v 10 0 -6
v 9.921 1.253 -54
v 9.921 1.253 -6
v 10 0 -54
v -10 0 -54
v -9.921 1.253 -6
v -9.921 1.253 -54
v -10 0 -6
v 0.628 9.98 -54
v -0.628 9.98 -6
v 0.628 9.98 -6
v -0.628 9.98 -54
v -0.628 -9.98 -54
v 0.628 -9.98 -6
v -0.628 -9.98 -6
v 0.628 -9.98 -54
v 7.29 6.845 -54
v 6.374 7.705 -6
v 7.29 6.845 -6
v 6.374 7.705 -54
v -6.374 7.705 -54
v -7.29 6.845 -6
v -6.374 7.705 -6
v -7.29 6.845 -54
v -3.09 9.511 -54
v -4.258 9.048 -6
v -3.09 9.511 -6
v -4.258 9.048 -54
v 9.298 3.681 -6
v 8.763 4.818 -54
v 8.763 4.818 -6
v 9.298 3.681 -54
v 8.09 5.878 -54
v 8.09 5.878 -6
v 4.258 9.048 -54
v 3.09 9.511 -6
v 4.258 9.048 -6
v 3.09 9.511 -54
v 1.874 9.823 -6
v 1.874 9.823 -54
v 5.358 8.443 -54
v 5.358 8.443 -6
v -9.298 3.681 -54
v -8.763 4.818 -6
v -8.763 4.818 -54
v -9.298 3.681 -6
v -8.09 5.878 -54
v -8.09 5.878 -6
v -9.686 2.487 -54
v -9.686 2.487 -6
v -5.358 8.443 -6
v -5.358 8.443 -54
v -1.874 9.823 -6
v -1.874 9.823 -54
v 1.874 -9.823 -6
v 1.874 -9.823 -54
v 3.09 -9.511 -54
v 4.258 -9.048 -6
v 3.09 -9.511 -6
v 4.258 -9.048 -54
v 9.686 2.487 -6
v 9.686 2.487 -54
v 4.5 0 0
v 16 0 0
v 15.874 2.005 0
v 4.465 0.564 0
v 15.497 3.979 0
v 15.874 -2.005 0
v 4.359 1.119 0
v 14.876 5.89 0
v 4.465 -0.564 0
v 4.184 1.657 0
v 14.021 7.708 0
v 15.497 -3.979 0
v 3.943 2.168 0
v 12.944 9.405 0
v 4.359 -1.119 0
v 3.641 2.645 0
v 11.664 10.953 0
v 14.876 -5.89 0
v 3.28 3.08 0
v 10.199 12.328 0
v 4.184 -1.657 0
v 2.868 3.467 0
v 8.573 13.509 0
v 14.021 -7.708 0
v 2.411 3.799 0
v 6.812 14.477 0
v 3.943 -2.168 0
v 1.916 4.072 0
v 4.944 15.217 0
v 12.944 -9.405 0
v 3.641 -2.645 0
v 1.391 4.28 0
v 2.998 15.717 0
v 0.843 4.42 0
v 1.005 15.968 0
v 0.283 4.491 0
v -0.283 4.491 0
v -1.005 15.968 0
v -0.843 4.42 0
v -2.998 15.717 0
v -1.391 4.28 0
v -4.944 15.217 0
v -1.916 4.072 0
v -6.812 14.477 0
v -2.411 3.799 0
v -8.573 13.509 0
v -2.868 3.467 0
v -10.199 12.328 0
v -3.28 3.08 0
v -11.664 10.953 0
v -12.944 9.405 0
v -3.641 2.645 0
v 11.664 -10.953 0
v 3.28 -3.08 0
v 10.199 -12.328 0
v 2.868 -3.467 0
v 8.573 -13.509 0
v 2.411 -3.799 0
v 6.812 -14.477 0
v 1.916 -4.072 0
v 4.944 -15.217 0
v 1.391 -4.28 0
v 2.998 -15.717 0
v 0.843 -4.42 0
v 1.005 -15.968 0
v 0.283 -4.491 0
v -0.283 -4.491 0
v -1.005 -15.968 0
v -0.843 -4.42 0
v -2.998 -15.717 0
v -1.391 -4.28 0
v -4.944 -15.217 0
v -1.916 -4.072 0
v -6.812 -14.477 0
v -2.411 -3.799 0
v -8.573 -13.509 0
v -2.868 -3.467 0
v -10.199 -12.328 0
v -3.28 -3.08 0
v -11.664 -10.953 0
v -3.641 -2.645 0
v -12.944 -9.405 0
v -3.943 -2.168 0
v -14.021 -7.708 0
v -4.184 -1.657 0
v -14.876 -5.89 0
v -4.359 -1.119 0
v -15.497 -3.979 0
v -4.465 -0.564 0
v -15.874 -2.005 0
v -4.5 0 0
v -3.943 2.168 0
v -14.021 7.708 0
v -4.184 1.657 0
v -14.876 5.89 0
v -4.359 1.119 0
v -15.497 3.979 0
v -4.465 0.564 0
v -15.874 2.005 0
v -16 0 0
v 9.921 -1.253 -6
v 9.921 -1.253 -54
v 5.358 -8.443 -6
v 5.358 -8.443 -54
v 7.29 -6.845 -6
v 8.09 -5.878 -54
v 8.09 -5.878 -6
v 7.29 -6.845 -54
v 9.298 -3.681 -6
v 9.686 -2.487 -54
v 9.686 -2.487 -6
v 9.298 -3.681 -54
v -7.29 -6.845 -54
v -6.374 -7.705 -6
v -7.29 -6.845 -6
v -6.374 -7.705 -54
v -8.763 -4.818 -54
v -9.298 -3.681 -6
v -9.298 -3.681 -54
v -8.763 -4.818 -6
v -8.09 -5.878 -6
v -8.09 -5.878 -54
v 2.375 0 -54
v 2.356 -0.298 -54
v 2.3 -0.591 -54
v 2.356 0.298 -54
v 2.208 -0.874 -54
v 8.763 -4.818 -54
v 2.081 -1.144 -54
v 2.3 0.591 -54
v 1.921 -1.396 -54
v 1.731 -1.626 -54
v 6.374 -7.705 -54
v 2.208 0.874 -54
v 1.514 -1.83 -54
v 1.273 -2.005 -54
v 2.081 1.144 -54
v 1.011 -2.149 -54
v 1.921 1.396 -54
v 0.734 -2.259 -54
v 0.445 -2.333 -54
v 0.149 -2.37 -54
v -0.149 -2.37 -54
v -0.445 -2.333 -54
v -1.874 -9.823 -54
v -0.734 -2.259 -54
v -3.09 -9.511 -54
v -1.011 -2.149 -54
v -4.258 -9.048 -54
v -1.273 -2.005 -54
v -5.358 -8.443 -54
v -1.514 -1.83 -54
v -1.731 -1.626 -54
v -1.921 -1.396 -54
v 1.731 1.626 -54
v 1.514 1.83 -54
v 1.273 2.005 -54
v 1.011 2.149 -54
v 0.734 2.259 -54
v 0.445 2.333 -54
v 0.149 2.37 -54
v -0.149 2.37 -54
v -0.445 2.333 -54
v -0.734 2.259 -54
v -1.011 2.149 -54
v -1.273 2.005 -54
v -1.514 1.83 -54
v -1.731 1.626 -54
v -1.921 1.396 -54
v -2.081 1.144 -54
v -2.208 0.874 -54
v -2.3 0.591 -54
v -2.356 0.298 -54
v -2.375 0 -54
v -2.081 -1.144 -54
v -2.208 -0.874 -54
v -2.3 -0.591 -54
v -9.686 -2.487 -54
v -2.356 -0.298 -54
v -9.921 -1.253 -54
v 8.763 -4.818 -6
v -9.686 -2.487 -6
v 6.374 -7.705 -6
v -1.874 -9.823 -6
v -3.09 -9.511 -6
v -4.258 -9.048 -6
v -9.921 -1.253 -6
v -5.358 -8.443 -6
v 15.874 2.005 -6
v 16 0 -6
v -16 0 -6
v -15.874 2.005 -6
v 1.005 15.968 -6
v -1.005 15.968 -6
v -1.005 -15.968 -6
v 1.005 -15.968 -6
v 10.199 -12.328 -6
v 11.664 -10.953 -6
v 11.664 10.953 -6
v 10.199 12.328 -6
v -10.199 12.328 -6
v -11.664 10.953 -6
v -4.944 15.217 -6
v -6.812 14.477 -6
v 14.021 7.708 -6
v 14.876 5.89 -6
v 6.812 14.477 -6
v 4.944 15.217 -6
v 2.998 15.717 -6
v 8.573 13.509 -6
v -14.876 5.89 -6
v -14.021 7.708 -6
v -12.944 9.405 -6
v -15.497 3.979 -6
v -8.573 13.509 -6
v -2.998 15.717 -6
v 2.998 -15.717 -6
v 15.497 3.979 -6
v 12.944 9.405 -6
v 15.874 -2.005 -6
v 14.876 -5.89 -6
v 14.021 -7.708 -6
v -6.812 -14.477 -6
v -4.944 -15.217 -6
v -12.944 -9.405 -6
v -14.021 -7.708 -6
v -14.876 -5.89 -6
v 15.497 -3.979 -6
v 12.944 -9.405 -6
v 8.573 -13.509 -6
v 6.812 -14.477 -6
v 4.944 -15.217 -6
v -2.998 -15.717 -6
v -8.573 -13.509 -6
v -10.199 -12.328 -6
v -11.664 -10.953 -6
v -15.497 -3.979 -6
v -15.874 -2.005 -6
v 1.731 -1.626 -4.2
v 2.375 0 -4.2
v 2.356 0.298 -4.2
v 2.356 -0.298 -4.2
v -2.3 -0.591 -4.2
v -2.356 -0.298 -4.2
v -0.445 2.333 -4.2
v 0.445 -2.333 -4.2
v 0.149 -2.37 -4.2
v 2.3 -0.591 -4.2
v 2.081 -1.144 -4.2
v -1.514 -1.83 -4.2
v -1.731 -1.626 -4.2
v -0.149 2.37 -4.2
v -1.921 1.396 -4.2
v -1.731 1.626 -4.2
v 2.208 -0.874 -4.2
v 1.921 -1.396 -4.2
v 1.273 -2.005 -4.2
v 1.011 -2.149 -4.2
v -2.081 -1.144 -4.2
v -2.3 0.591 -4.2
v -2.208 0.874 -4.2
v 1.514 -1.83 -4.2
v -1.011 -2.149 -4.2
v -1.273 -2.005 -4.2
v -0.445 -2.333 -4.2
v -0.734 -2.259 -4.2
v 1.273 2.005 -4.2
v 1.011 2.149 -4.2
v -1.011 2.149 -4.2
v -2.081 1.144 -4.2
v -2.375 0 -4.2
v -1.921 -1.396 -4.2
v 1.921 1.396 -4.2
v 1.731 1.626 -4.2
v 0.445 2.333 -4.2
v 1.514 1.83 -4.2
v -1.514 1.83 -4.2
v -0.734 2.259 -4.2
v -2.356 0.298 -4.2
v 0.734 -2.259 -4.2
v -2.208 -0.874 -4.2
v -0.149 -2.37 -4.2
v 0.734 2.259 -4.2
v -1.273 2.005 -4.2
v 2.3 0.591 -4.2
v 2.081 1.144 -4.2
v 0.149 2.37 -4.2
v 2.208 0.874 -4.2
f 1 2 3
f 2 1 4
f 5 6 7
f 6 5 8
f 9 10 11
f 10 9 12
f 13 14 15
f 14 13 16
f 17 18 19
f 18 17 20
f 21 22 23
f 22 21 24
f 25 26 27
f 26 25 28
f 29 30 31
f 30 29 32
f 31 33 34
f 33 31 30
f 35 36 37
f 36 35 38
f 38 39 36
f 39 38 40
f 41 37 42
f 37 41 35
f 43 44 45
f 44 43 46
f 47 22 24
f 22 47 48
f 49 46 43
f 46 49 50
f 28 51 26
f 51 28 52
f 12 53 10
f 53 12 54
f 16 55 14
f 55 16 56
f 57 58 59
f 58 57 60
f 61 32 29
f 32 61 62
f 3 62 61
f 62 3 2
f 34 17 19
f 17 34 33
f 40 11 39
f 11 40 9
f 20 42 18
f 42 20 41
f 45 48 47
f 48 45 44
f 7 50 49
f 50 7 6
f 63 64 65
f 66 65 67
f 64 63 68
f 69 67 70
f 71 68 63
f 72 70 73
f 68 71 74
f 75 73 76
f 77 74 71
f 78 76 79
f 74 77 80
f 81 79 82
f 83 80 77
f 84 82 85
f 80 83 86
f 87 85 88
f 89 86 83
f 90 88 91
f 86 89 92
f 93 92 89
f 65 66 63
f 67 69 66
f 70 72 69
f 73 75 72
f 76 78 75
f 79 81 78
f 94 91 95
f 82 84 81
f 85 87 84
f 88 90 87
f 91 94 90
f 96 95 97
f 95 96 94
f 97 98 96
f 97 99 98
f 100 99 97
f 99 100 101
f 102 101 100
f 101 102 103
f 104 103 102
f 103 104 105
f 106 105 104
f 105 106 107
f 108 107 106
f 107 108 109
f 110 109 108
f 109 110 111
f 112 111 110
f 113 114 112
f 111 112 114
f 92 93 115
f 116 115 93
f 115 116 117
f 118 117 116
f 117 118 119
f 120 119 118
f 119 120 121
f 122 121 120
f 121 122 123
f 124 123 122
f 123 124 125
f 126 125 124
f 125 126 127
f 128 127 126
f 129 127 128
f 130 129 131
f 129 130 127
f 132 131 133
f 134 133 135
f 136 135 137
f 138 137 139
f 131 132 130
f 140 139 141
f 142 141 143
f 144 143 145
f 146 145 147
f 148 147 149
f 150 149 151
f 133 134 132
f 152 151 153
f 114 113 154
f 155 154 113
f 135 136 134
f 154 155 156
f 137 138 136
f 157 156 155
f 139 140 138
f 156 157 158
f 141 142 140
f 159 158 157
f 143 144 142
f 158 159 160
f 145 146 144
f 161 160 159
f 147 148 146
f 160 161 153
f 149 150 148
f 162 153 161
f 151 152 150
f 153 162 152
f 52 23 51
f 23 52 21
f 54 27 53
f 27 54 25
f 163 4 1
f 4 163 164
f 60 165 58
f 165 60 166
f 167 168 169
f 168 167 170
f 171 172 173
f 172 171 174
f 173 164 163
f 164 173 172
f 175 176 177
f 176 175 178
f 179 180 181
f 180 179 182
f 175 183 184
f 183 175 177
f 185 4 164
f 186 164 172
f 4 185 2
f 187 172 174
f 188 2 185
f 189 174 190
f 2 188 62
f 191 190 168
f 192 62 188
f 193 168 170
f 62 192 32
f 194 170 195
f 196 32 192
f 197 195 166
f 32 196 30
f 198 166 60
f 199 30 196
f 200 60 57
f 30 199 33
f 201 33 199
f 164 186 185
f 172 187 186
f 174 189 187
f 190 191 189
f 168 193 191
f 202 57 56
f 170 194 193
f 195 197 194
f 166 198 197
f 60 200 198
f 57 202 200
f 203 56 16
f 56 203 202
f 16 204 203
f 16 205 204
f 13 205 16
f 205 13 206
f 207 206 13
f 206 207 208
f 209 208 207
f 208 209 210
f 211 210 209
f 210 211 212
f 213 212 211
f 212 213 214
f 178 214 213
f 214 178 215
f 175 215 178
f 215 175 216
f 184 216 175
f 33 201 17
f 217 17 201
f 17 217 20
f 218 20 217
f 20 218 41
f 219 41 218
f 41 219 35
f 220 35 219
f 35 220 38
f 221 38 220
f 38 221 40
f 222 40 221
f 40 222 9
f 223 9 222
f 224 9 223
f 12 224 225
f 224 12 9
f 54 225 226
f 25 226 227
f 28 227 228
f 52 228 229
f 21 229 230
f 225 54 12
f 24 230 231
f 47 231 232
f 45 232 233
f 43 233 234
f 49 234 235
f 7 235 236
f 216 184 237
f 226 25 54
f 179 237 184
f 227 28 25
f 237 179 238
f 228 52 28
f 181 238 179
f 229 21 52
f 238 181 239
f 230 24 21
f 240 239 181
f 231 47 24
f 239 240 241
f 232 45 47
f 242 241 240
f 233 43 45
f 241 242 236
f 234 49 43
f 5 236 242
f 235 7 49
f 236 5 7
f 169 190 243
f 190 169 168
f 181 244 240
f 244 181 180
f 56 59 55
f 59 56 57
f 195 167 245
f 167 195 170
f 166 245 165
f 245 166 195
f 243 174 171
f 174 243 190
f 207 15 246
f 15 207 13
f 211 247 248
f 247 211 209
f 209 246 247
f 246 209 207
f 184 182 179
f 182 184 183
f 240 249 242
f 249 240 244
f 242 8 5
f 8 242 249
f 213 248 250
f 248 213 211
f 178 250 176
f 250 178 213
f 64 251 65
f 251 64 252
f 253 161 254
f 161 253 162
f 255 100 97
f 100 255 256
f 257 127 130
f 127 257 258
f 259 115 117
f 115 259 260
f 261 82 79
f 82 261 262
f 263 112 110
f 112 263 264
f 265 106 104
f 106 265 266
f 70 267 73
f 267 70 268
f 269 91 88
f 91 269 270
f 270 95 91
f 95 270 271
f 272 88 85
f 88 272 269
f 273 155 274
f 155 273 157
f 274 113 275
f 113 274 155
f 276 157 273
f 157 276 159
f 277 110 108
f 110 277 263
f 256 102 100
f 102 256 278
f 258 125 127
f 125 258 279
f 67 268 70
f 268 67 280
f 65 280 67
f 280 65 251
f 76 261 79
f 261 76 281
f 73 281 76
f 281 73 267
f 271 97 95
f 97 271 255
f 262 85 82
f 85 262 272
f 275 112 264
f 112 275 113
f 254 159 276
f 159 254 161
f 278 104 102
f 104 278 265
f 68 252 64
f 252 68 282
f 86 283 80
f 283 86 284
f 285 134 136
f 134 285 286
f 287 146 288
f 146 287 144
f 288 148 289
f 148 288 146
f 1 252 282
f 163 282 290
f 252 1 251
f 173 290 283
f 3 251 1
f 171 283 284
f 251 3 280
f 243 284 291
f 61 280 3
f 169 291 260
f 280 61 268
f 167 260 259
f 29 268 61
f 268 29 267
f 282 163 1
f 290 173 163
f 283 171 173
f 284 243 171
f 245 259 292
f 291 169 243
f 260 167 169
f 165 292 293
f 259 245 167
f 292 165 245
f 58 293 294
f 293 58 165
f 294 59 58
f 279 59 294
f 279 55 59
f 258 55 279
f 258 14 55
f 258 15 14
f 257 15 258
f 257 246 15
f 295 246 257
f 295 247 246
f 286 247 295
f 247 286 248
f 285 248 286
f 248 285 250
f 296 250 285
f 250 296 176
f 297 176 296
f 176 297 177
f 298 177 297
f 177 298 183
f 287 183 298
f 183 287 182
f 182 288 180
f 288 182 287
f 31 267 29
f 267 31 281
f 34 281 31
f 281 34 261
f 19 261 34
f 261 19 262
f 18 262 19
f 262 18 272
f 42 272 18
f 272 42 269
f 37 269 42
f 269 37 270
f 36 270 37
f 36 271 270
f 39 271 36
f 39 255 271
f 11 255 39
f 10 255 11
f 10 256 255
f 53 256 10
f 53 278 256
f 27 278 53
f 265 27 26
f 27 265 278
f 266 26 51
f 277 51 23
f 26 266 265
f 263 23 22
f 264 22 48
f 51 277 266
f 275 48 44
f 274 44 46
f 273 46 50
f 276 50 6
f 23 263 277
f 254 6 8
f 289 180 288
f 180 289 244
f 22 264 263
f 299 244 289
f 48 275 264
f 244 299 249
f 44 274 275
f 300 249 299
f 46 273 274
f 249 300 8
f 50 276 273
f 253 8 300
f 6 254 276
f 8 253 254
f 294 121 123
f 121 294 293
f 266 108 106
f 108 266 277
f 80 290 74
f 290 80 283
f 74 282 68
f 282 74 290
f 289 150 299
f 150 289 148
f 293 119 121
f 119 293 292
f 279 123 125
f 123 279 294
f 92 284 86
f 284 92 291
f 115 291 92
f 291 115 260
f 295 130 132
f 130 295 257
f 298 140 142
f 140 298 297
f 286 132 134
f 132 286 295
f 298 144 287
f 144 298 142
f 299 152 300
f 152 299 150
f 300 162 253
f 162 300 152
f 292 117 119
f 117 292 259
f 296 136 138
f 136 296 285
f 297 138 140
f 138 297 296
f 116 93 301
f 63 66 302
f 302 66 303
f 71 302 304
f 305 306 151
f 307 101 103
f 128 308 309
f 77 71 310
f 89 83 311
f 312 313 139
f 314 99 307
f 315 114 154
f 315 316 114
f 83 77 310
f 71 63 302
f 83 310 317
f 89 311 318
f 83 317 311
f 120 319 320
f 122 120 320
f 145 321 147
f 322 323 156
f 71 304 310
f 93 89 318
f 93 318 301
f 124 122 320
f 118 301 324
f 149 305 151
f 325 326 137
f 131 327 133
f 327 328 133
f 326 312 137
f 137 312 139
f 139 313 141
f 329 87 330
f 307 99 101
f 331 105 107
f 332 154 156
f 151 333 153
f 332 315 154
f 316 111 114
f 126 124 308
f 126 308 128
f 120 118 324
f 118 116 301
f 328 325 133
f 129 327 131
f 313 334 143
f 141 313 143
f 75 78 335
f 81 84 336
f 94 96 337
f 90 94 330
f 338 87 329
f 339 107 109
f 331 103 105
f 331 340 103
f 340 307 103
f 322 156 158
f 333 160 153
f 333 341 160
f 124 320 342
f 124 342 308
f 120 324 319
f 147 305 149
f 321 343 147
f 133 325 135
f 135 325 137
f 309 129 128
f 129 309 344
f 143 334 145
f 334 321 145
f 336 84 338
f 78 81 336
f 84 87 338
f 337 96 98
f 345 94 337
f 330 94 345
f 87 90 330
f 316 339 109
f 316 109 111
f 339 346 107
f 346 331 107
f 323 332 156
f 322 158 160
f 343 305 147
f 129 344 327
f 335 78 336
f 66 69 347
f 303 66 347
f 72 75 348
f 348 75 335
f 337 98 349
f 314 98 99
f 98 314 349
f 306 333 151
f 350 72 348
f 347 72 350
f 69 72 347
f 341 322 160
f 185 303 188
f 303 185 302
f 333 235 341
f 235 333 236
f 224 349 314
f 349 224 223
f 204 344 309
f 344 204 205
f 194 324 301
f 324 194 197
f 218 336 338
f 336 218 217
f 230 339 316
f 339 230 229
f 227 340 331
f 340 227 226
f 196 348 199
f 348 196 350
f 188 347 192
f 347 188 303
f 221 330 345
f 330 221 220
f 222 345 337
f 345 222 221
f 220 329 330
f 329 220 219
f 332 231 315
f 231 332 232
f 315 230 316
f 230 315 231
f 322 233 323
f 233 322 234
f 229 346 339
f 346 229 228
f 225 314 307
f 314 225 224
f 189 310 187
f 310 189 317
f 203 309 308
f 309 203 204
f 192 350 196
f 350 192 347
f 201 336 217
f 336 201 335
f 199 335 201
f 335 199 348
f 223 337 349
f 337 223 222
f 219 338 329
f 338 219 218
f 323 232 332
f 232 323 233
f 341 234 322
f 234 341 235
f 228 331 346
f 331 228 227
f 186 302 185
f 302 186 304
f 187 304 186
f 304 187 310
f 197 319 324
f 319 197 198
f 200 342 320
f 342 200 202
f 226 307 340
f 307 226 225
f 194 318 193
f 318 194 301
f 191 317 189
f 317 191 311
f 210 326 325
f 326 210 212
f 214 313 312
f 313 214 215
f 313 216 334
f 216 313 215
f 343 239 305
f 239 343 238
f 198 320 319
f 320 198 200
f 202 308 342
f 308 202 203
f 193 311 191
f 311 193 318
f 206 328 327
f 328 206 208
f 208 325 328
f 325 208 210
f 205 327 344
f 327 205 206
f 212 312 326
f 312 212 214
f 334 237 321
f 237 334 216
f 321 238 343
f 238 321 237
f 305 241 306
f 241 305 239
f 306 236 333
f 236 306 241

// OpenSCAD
$fn = 50;


difference() {
	union() {
		translate(v = [0, 0, -54.0000000000]) {
			cylinder(h = 54, r = 10.0000000000);
		}
		translate(v = [0, 0, -6.0000000000]) {
			cylinder(h = 6, r = 16.0000000000);
		}
	}
	union() {
		translate(v = [0, 0, 0]) {
			rotate(a = [0, 0, 0]) {
				difference() {
					union() {
						#translate(v = [0, 0, -54.0000000000]) {
							cylinder(h = 54, r = 2.2500000000);
						}
						#translate(v = [0, 0, -4.2000000000]) {
							cylinder(h = 4.2000000000, r = 10.0000000000, r1 = 2.3750000000, r2 = 4.5000000000);
						}
						#translate(v = [0, 0, -54.0000000000]) {
							cylinder(h = 54, r = 2.3750000000);
						}
						#translate(v = [0, 0, -54.0000000000]) {
							cylinder(h = 54, r = 2.2500000000);
						}
					}
					union();
				}
			}
		}
	}
}
